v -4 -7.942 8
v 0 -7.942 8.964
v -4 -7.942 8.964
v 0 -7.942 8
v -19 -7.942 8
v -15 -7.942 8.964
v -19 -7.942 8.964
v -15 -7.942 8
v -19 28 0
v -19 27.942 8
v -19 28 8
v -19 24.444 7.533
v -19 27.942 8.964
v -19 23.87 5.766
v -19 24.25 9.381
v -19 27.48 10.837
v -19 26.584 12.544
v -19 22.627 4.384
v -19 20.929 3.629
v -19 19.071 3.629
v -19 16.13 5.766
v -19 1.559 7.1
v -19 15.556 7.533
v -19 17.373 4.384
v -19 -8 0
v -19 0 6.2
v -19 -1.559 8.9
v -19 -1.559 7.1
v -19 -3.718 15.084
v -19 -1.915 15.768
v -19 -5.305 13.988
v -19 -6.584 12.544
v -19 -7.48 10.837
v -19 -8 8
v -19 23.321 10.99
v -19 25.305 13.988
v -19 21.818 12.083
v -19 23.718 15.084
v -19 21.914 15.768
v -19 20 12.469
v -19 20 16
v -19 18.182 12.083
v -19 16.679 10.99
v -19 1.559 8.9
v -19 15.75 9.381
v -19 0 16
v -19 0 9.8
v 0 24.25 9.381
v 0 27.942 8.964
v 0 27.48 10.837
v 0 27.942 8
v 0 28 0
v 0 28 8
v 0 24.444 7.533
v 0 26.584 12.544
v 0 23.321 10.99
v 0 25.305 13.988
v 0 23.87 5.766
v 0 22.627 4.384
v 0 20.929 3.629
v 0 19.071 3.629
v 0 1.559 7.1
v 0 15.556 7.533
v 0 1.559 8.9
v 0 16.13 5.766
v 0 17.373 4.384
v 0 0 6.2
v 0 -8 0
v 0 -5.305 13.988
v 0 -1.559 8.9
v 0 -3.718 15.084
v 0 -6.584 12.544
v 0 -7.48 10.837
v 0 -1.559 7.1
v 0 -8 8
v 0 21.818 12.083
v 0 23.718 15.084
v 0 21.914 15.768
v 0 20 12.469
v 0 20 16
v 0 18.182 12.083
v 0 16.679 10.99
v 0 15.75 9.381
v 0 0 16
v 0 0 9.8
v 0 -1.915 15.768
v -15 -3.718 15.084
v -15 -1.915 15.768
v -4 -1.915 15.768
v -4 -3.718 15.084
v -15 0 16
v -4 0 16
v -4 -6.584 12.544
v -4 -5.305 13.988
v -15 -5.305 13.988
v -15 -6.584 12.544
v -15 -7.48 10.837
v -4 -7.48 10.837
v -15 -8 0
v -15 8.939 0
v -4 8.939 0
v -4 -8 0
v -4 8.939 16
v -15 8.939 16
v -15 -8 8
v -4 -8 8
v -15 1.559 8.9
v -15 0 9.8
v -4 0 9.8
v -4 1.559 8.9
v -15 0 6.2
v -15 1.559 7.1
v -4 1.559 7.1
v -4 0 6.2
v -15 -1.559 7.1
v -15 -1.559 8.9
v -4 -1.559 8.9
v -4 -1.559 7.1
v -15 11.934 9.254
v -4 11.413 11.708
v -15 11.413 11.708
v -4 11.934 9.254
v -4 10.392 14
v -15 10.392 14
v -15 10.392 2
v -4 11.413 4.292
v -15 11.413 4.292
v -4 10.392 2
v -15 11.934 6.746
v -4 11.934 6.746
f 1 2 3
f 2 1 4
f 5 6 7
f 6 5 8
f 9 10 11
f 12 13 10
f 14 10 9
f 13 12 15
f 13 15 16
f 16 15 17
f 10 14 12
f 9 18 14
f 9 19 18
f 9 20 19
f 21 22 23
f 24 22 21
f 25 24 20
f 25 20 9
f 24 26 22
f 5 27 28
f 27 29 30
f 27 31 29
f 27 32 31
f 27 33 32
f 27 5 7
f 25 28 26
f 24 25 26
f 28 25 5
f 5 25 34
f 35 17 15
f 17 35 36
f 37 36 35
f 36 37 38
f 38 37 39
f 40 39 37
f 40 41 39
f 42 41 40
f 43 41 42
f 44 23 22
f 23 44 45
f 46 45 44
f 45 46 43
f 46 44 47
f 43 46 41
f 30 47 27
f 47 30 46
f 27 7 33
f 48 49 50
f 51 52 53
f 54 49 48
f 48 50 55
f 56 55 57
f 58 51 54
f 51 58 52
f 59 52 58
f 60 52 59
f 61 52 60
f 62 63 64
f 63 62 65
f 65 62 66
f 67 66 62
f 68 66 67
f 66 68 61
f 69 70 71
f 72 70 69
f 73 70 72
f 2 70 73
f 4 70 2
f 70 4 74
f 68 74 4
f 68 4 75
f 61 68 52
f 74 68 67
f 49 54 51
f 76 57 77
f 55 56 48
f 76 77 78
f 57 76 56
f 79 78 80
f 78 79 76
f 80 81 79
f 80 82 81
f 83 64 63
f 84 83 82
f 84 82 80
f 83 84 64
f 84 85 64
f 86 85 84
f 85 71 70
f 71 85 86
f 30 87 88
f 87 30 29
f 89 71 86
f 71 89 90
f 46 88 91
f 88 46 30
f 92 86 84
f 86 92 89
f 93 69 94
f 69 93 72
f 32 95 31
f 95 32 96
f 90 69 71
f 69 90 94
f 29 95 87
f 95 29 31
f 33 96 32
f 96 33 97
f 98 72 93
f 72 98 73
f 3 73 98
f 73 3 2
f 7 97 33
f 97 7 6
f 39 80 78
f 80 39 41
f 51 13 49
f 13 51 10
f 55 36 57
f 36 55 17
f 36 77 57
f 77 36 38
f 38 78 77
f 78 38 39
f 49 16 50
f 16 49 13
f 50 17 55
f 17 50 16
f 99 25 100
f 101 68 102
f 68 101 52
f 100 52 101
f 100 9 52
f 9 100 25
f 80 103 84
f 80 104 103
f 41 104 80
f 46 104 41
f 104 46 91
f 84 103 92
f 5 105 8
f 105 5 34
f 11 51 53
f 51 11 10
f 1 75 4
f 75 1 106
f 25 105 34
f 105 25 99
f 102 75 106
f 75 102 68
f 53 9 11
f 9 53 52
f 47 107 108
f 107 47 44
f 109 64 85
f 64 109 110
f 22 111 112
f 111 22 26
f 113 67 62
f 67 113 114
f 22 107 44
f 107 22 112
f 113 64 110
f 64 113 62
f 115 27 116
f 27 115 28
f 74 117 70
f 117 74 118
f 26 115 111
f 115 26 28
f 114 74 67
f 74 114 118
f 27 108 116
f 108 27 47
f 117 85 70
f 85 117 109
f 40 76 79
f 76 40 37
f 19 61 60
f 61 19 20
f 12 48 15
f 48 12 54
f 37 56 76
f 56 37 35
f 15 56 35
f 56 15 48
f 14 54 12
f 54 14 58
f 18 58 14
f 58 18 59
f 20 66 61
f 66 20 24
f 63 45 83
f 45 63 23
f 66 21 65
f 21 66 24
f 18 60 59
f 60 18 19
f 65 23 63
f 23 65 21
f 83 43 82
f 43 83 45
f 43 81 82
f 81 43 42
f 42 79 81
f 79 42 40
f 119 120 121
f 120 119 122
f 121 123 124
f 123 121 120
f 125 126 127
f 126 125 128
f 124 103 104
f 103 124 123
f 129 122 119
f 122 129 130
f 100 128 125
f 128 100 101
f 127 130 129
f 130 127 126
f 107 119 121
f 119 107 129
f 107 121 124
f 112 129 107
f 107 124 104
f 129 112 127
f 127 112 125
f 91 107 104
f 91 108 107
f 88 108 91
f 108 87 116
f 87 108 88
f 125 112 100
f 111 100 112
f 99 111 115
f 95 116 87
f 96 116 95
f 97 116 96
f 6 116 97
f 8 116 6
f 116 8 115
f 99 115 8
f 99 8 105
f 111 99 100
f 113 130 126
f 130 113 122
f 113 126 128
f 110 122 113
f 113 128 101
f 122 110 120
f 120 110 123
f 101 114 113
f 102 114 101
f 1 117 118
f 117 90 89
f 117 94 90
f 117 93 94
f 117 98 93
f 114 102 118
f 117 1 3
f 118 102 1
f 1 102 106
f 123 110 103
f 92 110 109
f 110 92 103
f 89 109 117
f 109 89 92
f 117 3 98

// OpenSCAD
// PRUSA iteration3
// Y idler
// GNU GPL v3
// Josef Průša <iam@josefprusa.cz> and contributors
// http://www.reprap.org/wiki/Prusa_Mendel
// http://prusamendel.org


module y_idler_base(){
 translate(v = [0,0,0]) cylinder(h = 19, r=8);	
 translate(v = [0,20,0]) cylinder(h = 19, r=8);
 translate(v = [0,10,9.5]) cube(size = [16,20,19], center=true);
 translate(v = [-4,10,9.5]) cube(size = [8,16+20,19], center=true);
}

module y_idler_holes(){
 translate(v = [0,0,-1]) cylinder(h = 120, r=1.8);	
 translate(v = [0,20,-1]) cylinder(h = 25, r=4.469);
 translate(v = [0,0,4]) cylinder(h = 11, r=12);
}

// Final part
module y_idler(){
 translate(v = [0,0,8])rotate([0,-90,0]) difference(){
  y_idler_base();
  y_idler_holes();
 }
}

y_idler();
